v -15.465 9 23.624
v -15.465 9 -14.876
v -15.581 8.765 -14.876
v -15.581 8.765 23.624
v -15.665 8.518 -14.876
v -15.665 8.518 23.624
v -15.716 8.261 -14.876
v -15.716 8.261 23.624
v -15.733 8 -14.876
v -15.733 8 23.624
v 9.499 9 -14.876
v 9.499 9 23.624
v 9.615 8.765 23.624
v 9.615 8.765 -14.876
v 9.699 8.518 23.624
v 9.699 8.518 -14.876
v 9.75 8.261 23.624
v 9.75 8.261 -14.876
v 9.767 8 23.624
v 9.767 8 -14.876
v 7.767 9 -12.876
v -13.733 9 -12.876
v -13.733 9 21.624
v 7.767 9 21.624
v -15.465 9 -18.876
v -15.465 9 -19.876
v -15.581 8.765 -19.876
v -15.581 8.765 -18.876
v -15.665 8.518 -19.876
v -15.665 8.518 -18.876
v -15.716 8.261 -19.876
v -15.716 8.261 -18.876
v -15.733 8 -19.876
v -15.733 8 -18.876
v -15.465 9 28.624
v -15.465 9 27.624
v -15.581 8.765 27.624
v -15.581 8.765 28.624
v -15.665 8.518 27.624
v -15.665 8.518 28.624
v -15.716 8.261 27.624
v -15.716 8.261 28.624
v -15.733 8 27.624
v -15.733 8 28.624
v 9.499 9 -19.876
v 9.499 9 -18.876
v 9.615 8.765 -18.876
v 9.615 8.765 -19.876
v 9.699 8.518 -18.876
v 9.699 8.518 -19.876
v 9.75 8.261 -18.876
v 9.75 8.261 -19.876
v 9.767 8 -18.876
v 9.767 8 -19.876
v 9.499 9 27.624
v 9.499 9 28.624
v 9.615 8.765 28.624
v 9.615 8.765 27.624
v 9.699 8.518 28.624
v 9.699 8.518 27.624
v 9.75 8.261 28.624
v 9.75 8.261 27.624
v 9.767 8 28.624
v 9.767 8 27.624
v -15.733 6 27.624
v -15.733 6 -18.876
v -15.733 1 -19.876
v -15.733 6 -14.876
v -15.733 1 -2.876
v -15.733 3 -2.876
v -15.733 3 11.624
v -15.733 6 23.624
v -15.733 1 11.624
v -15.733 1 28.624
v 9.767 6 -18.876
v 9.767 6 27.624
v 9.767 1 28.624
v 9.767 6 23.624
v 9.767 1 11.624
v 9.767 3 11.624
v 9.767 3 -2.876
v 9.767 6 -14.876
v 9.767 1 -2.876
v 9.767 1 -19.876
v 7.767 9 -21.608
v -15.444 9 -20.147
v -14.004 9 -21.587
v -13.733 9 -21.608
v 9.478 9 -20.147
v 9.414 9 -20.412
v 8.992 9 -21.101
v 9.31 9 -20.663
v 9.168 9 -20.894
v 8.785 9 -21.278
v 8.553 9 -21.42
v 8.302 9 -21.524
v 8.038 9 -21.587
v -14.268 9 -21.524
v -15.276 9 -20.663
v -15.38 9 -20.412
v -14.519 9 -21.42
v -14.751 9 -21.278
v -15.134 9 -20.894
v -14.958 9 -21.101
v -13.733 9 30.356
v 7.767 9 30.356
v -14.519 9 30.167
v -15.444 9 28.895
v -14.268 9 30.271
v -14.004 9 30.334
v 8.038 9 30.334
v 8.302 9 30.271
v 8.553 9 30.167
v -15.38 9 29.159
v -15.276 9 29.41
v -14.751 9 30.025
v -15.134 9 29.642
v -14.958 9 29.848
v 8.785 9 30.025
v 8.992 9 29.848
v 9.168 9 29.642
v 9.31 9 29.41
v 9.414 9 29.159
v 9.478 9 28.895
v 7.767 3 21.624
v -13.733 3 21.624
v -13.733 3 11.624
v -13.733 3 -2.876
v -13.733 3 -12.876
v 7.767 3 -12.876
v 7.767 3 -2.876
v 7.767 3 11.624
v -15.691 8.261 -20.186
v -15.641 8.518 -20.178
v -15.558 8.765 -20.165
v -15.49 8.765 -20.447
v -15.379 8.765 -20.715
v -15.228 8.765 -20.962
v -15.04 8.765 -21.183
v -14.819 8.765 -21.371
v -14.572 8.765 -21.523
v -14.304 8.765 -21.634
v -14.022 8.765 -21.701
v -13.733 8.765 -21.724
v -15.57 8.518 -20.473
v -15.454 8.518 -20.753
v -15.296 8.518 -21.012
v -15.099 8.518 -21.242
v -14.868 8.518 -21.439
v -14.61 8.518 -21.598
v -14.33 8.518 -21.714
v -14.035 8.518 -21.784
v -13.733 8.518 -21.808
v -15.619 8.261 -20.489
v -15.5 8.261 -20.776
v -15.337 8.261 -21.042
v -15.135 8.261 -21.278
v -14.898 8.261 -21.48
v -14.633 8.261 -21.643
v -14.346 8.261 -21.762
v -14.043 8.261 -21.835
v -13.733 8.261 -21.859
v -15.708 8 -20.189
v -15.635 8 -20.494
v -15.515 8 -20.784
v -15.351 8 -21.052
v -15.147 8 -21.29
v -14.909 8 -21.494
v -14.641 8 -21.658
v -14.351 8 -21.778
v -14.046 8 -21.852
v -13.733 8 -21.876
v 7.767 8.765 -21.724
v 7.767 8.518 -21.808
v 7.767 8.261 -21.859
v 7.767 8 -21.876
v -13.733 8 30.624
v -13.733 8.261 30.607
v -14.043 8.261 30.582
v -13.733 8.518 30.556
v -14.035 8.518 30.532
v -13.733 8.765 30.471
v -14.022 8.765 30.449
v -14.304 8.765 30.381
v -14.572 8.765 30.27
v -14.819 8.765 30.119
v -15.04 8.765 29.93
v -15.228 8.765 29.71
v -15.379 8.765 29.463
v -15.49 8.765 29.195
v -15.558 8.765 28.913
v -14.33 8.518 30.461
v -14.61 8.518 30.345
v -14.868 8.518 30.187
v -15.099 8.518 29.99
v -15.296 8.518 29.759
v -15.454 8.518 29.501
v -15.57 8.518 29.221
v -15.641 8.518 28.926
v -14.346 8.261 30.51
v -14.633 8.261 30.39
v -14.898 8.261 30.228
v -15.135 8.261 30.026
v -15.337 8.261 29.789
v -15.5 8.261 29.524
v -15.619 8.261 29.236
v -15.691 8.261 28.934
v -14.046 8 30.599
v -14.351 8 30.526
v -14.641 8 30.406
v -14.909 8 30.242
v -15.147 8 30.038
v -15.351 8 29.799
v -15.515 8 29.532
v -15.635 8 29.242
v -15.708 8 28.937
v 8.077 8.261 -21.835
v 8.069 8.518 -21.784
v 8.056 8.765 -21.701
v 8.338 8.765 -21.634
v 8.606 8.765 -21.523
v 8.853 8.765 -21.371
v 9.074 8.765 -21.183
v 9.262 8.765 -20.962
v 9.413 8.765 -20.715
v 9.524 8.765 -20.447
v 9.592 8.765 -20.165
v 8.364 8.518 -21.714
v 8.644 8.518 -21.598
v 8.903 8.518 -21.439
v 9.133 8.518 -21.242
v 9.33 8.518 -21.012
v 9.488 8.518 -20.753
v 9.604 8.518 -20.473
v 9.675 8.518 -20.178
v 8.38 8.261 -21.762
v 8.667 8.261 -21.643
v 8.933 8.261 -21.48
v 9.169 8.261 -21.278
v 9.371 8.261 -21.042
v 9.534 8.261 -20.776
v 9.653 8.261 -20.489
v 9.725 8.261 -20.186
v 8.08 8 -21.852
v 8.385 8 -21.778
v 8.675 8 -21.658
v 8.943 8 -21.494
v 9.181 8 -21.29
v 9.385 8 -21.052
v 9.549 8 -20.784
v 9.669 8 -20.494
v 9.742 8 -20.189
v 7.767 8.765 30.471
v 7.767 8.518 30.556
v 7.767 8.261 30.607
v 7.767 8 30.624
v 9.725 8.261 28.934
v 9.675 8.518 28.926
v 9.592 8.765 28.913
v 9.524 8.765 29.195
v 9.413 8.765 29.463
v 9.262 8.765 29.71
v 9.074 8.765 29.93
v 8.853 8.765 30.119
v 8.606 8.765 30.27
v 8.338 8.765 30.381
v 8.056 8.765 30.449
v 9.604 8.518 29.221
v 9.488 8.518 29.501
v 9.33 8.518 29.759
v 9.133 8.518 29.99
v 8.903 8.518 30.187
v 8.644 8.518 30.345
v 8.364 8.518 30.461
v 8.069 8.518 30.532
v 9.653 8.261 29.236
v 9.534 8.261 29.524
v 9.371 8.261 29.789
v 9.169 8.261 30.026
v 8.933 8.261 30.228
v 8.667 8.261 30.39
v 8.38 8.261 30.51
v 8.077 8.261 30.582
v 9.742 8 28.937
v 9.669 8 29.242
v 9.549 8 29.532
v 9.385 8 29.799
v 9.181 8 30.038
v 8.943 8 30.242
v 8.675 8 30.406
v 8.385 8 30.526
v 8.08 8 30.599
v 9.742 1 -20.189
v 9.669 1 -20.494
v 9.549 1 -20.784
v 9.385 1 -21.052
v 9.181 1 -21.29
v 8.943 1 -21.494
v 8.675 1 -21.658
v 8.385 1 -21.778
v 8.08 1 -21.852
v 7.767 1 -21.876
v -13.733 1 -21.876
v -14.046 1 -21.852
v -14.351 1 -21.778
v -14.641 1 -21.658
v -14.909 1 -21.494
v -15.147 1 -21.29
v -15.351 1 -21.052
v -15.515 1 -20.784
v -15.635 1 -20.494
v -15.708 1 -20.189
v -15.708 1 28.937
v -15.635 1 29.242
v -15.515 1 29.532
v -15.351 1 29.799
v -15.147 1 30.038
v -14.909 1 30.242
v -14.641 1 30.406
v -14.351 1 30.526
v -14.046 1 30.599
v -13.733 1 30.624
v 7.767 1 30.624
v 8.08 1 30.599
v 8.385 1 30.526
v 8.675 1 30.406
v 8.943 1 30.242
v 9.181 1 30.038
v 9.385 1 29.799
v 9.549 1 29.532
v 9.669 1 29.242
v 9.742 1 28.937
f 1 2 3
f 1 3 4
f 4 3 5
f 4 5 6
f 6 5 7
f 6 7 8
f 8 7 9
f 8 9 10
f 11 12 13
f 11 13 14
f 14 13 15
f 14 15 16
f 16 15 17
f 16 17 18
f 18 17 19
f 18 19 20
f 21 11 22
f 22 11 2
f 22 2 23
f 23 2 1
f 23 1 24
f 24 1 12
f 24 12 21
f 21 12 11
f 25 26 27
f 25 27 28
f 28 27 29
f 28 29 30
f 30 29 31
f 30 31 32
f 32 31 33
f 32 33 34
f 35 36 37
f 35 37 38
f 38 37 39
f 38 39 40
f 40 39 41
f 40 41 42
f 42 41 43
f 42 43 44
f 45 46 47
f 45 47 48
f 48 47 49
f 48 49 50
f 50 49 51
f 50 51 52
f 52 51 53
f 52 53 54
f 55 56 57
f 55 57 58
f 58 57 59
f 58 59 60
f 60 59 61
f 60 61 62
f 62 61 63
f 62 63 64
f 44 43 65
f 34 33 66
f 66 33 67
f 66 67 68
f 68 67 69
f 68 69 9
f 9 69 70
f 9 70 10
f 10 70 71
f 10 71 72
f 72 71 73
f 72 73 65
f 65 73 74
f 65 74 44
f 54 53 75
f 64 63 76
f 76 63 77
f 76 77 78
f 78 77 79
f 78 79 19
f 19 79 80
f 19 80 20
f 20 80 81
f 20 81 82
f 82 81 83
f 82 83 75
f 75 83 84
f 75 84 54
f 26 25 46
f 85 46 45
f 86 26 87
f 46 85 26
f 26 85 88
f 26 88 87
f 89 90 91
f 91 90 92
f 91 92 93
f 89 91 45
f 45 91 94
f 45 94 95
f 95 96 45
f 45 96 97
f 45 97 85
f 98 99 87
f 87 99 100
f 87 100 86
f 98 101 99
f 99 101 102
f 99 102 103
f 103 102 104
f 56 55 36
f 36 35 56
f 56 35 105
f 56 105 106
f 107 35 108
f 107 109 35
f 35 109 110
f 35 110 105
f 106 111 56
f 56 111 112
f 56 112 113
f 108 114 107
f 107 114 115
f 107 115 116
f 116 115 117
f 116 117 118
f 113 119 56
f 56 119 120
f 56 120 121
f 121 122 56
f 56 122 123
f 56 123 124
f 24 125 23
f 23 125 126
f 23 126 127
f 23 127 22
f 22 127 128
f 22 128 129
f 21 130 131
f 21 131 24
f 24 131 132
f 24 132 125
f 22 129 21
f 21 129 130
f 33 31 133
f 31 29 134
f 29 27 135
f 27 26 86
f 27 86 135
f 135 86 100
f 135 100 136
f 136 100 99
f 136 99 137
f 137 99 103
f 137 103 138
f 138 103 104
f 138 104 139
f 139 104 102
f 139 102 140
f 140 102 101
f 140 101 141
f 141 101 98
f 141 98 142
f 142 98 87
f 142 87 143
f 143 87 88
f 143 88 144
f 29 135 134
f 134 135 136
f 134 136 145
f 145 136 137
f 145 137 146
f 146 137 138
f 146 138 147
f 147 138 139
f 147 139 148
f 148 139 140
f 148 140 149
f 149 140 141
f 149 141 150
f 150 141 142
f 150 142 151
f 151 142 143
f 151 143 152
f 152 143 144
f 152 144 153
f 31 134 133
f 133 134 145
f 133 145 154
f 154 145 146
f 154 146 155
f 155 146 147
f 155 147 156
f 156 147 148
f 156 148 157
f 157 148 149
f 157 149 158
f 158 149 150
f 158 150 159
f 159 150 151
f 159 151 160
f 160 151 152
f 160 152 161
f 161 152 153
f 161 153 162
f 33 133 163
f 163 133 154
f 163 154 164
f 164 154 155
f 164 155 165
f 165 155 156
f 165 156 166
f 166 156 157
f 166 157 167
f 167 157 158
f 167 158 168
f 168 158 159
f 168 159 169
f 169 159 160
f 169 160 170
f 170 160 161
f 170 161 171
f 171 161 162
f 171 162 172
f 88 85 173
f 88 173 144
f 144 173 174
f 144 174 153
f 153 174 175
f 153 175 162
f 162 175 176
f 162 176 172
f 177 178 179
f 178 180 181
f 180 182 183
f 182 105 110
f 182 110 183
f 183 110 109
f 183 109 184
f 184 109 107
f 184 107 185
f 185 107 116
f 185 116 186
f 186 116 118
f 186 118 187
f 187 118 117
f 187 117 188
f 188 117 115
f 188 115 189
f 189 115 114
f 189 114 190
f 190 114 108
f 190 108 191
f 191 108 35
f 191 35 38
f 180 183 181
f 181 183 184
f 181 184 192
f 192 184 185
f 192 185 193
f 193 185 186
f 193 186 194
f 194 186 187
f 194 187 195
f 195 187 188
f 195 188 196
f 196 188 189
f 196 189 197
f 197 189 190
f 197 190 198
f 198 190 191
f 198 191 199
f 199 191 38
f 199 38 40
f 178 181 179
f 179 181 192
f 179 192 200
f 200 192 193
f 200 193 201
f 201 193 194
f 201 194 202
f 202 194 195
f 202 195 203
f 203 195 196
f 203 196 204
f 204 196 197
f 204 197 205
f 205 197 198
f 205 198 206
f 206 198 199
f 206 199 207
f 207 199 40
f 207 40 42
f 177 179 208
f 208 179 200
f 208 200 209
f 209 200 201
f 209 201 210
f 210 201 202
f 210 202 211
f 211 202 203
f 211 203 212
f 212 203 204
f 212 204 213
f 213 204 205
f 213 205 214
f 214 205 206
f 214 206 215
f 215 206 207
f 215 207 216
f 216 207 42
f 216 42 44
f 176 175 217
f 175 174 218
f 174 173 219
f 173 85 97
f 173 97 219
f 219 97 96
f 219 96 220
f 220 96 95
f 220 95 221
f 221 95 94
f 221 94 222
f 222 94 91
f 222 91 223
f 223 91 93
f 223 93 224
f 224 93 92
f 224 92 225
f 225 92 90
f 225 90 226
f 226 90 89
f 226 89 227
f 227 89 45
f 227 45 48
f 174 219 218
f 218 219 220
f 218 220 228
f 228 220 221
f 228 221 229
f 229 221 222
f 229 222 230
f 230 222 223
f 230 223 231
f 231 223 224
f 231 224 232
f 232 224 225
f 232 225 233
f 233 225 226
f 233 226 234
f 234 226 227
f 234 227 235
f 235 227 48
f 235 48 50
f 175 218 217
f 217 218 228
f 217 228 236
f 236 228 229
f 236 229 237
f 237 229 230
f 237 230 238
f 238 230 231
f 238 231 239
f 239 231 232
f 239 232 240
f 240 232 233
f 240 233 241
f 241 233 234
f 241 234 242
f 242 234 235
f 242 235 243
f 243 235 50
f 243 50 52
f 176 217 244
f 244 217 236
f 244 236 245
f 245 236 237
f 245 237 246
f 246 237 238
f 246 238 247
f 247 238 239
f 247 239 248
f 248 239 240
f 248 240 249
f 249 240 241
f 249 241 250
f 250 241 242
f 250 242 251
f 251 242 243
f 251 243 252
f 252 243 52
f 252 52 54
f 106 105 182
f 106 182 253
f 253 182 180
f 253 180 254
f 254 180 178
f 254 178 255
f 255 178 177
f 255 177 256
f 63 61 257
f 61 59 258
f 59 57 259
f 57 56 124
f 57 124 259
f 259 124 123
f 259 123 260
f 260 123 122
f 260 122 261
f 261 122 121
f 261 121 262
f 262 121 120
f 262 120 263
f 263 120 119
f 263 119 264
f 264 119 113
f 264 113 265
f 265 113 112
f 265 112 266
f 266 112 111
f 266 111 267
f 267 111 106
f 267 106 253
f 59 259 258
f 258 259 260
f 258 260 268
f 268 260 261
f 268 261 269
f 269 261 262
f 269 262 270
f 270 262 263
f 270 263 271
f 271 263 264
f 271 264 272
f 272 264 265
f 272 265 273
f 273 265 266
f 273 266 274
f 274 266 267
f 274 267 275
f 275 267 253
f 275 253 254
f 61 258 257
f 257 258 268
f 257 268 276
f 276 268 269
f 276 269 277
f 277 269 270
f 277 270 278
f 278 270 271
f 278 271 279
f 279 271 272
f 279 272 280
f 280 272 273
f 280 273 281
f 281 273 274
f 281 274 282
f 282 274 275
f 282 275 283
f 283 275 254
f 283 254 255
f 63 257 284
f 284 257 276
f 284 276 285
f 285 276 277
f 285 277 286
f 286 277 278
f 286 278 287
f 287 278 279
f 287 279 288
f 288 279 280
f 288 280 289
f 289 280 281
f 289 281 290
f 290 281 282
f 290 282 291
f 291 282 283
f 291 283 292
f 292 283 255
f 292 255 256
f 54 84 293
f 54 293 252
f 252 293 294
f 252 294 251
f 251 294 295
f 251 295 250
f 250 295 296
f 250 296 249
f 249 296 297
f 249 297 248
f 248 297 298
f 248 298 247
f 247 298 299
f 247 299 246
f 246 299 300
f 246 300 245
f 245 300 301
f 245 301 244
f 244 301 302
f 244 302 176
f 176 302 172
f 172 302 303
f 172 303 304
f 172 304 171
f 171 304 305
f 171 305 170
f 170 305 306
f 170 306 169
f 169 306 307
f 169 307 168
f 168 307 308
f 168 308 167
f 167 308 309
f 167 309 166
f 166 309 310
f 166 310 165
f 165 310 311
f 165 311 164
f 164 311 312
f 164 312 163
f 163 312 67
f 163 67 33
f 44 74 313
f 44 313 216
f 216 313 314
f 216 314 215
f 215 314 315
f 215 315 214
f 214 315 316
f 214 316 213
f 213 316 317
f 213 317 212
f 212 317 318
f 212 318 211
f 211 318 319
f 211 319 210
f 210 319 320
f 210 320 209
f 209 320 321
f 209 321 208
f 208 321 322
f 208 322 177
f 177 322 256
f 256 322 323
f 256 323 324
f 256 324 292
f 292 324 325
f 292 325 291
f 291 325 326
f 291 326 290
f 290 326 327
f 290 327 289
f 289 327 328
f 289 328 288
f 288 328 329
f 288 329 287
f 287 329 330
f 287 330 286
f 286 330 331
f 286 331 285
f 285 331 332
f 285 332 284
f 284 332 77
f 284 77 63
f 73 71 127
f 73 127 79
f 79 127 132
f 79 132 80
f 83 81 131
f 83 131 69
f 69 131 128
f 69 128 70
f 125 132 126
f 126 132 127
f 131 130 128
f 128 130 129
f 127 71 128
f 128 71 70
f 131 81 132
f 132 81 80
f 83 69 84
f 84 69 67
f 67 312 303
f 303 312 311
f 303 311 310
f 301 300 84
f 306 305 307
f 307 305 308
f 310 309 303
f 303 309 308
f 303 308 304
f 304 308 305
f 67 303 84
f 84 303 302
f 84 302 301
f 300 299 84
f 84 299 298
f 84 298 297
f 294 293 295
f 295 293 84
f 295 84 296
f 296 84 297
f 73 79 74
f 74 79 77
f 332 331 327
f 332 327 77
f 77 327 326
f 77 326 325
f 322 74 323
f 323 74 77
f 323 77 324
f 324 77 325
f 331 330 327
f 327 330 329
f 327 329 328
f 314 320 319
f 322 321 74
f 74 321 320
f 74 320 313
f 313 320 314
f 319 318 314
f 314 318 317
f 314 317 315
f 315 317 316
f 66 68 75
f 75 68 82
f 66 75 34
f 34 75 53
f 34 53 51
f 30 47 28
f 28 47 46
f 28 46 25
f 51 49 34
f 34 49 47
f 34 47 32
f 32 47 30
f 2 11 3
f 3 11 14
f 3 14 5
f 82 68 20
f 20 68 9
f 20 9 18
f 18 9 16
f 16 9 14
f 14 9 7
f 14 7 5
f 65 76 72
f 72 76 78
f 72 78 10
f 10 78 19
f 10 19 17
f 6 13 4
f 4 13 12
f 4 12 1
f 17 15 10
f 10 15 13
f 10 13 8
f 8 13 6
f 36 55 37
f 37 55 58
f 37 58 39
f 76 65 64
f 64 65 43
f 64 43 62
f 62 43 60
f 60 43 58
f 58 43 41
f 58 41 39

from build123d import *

# Parameters (mm, degrees)
SKETCH_1_W          = 21.5
SKETCH_1_H          = 34.5
EXTRUDE_2_DEPTH     = 11
FILLET_1_R          = 2
SKETCH_2_W          = 39.173485157
SKETCH_2_H          = 57.857292793
CUT_EXTRUDE_1_DEPTH = 1
SKETCH_3_W          = 21.5
SKETCH_3_H          = 10
EXTRUDE_3_DEPTH     = 3
SKETCH_4_W          = 36.577122412
SKETCH_4_H          = 60.487116615
CUT_EXTRUDE_2_DEPTH = 1
SKETCH_5_W          = 14.5
SKETCH_5_H          = 3
CUT_EXTRUDE_3_DEPTH = 11
SKETCH_6_W          = 14.5
SKETCH_6_H          = 3
CUT_EXTRUDE_4_DEPTH = 11
SKETCH_7_W          = 57.52189795
SKETCH_7_H          = 59.987072635
CUT_EXTRUDE_5_DEPTH = 1
SKETCH_8_W          = 21.5
SKETCH_8_H          = 34.5
EXTRUDE_4_DEPTH     = 1
FILLET_2_R          = 2
SKETCH_9_W          = 42.225742073
SKETCH_9_H          = 59.055369136
CUT_EXTRUDE_6_DEPTH = 1
SKETCH_10_W         = 4
SKETCH_10_H         = 2
SKETCH_10_H_2       = 3.79495429
CUT_EXTRUDE_8_DEPTH = 30
CUT_EXTRUDE_9_DEPTH = 30


with BuildPart() as part:
    # 草图1 → 凸台-拉伸2 (new body)
    with BuildSketch(Plane(origin=(0, 0, 0), x_dir=(1, 0, 0), z_dir=(0, 1, 0))):
        with BuildLine():
            Line((-13.732977682, 21.876274057), (7.767022318, 21.876274057))
            ThreePointArc((7.767022318, 21.876274057), (9.18123588, 21.290487619), (9.767022318, 19.876274057))
            Line((9.767022318, 19.876274057), (9.767022318, -28.623725943))
            ThreePointArc((9.767022318, -28.623725943), (9.18123588, -30.037939506), (7.767022318, -30.623725943))
            Line((7.767022318, -30.623725943), (-13.732977682, -30.623725943))
            ThreePointArc((-13.732977682, -30.623725943), (-15.147191244, -30.037939506), (-15.732977682, -28.623725943))
            Line((-15.732977682, -28.623725943), (-15.732977682, 19.876274057))
            ThreePointArc((-15.732977682, 19.876274057), (-15.147191244, 21.290487619), (-13.732977682, 21.876274057))
        make_face()
        with Locations((-2.982977682, -4.373725943)):
            Rectangle(SKETCH_1_W, SKETCH_1_H, mode=Mode.SUBTRACT)
    extrude(amount=EXTRUDE_2_DEPTH)

    # 圆角1
    fillet_1_edges = [part.edges().sort_by_distance(p)[0] for p in [
        (-15.147191244, 11, -21.290487619),
        (-15.732977682, 11, 4.373725943),
        (-15.147191244, 11, 30.037939506),
        (-2.982977682, 11, 30.623725943),
        (9.18123588, 11, 30.037939506),
        (9.767022318, 11, 4.373725943),
        (9.18123588, 11, -21.290487619),
        (-2.982977682, 11, -21.876274057),
    ]]
    fillet(fillet_1_edges, radius=FILLET_1_R - 0.0001)  # a hair under: the kernel refuses the full size

    # 草图2 → 切除-拉伸1 (cut)
    with BuildSketch(Plane(origin=(0, 11, 0), x_dir=(1, 0, 0), z_dir=(0, 1, 0))):
        with Locations((-2.456788303, -4.185742432)):
            Rectangle(SKETCH_2_W, SKETCH_2_H)
    extrude(amount=-CUT_EXTRUDE_1_DEPTH, mode=Mode.SUBTRACT)

    # 草图3 → 凸台-拉伸3 (add)
    with BuildSketch(Plane(origin=(0, 0, 0), x_dir=(-1, 0, 0), z_dir=(0, -1, 0))):
        with Locations((2.982977682, -16.623725943)):
            Rectangle(SKETCH_3_W, SKETCH_3_H)
        with Locations((2.982977682, 7.876274057)):
            Rectangle(SKETCH_3_W, SKETCH_3_H)
    extrude(amount=-EXTRUDE_3_DEPTH)

    # 草图4 → 切除-拉伸2 (cut)
    with BuildSketch(Plane(origin=(0, 10, 0), x_dir=(1, 0, 0), z_dir=(0, 1, 0))):
        with Locations((-2.114714468, -5.96144712)):
            Rectangle(SKETCH_4_W, SKETCH_4_H)
    extrude(amount=-CUT_EXTRUDE_2_DEPTH, mode=Mode.SUBTRACT)

    # 草图5 → 切除-拉伸3 (cut)
    with BuildSketch(Plane(origin=(-13.732977682, 0, 0), x_dir=(0, 0, -1), z_dir=(1, 0, 0))):
        with Locations((-4.373725943, 1.5)):
            Rectangle(SKETCH_5_W, SKETCH_5_H)
    extrude(amount=-CUT_EXTRUDE_3_DEPTH, mode=Mode.SUBTRACT)

    # 草图6 → 切除-拉伸4 (cut)
    with BuildSketch(Plane.ZY.offset(-7.767022318)):
        with Locations((4.373725943, 1.5)):
            Rectangle(SKETCH_6_W, SKETCH_6_H)
    extrude(amount=-CUT_EXTRUDE_4_DEPTH, mode=Mode.SUBTRACT)

    # 草图7 → 切除-拉伸5 (cut)
    with BuildSketch(Plane(origin=(0, 0, 0), x_dir=(-1, 0, 0), z_dir=(0, -1, 0))):
        with Locations((4.496549364, -6.319684839)):
            Rectangle(SKETCH_7_W, SKETCH_7_H)
    extrude(amount=-CUT_EXTRUDE_5_DEPTH, mode=Mode.SUBTRACT)

    # 草图8 → 凸台-拉伸4 (add)
    with BuildSketch(Plane(origin=(0, 9, 0), x_dir=(1, 0, 0), z_dir=(0, 1, 0))):
        with BuildLine():
            Line((9.767022318, -28.623725943), (9.767022318, 19.876274057))
            ThreePointArc((9.767022318, 19.876274057), (9.18123588, 21.290487619), (7.767022318, 21.876274057))
            Line((7.767022318, 21.876274057), (-13.732977682, 21.876274057))
            ThreePointArc((-13.732977682, 21.876274057), (-15.147191244, 21.290487619), (-15.732977682, 19.876274057))
            Line((-15.732977682, 19.876274057), (-15.732977682, -28.623725943))
            ThreePointArc((-15.732977682, -28.623725943), (-15.147191244, -30.037939506), (-13.732977682, -30.623725943))
            Line((-13.732977682, -30.623725943), (7.767022318, -30.623725943))
            ThreePointArc((7.767022318, -30.623725943), (9.18123588, -30.037939506), (9.767022318, -28.623725943))
        make_face()
        with Locations((-2.982977682, -4.373725943)):
            Rectangle(SKETCH_8_W, SKETCH_8_H, mode=Mode.SUBTRACT)
    extrude(amount=EXTRUDE_4_DEPTH)

    # 圆角2
    fillet_2_edges = [part.edges().sort_by_distance(p)[0] for p in [
        (9.767022318, 10, 4.373725943),
        (9.18123588, 10, -21.290487619),
        (-2.982977682, 10, -21.876274057),
        (-15.147191244, 10, -21.290487619),
        (-15.732977682, 10, 4.373725943),
        (-15.147191244, 10, 30.037939506),
        (-2.982977682, 10, 30.623725943),
        (9.18123588, 10, 30.037939506),
    ]]
    fillet(fillet_2_edges, radius=FILLET_2_R - 0.0001)  # a hair under: the kernel refuses the full size

    # 草图9 → 切除-拉伸6 (cut)
    with BuildSketch(Plane(origin=(0, 10, 0), x_dir=(1, 0, 0), z_dir=(0, 1, 0))):
        with Locations((1.20063142, -3.725323224)):
            Rectangle(SKETCH_9_W, SKETCH_9_H)
    extrude(amount=-CUT_EXTRUDE_6_DEPTH, mode=Mode.SUBTRACT)

    # 草图10 → 切除-拉伸8 (cut)
    with BuildSketch(Plane.ZY.offset(15.732977682)):
        with Locations((-16.876274057, 7)):
            Rectangle(SKETCH_10_W, SKETCH_10_H)
        with Locations((-16.876274057, 9.897477145)):
            Rectangle(SKETCH_10_W, SKETCH_10_H_2)
    extrude(amount=-CUT_EXTRUDE_8_DEPTH, mode=Mode.SUBTRACT)

    # 草图11 → 切除-拉伸9 (cut)
    with BuildSketch(Plane.ZY.offset(15.732977682)):
        Polygon((23.623725943, 8), (23.623725943, 14.233861669), (27.623725943, 14.233861669), (27.623725943, 8), (27.623725943, 6), (23.623725943, 6), align=None)
    extrude(amount=-CUT_EXTRUDE_9_DEPTH, mode=Mode.SUBTRACT)


solid = part.part
